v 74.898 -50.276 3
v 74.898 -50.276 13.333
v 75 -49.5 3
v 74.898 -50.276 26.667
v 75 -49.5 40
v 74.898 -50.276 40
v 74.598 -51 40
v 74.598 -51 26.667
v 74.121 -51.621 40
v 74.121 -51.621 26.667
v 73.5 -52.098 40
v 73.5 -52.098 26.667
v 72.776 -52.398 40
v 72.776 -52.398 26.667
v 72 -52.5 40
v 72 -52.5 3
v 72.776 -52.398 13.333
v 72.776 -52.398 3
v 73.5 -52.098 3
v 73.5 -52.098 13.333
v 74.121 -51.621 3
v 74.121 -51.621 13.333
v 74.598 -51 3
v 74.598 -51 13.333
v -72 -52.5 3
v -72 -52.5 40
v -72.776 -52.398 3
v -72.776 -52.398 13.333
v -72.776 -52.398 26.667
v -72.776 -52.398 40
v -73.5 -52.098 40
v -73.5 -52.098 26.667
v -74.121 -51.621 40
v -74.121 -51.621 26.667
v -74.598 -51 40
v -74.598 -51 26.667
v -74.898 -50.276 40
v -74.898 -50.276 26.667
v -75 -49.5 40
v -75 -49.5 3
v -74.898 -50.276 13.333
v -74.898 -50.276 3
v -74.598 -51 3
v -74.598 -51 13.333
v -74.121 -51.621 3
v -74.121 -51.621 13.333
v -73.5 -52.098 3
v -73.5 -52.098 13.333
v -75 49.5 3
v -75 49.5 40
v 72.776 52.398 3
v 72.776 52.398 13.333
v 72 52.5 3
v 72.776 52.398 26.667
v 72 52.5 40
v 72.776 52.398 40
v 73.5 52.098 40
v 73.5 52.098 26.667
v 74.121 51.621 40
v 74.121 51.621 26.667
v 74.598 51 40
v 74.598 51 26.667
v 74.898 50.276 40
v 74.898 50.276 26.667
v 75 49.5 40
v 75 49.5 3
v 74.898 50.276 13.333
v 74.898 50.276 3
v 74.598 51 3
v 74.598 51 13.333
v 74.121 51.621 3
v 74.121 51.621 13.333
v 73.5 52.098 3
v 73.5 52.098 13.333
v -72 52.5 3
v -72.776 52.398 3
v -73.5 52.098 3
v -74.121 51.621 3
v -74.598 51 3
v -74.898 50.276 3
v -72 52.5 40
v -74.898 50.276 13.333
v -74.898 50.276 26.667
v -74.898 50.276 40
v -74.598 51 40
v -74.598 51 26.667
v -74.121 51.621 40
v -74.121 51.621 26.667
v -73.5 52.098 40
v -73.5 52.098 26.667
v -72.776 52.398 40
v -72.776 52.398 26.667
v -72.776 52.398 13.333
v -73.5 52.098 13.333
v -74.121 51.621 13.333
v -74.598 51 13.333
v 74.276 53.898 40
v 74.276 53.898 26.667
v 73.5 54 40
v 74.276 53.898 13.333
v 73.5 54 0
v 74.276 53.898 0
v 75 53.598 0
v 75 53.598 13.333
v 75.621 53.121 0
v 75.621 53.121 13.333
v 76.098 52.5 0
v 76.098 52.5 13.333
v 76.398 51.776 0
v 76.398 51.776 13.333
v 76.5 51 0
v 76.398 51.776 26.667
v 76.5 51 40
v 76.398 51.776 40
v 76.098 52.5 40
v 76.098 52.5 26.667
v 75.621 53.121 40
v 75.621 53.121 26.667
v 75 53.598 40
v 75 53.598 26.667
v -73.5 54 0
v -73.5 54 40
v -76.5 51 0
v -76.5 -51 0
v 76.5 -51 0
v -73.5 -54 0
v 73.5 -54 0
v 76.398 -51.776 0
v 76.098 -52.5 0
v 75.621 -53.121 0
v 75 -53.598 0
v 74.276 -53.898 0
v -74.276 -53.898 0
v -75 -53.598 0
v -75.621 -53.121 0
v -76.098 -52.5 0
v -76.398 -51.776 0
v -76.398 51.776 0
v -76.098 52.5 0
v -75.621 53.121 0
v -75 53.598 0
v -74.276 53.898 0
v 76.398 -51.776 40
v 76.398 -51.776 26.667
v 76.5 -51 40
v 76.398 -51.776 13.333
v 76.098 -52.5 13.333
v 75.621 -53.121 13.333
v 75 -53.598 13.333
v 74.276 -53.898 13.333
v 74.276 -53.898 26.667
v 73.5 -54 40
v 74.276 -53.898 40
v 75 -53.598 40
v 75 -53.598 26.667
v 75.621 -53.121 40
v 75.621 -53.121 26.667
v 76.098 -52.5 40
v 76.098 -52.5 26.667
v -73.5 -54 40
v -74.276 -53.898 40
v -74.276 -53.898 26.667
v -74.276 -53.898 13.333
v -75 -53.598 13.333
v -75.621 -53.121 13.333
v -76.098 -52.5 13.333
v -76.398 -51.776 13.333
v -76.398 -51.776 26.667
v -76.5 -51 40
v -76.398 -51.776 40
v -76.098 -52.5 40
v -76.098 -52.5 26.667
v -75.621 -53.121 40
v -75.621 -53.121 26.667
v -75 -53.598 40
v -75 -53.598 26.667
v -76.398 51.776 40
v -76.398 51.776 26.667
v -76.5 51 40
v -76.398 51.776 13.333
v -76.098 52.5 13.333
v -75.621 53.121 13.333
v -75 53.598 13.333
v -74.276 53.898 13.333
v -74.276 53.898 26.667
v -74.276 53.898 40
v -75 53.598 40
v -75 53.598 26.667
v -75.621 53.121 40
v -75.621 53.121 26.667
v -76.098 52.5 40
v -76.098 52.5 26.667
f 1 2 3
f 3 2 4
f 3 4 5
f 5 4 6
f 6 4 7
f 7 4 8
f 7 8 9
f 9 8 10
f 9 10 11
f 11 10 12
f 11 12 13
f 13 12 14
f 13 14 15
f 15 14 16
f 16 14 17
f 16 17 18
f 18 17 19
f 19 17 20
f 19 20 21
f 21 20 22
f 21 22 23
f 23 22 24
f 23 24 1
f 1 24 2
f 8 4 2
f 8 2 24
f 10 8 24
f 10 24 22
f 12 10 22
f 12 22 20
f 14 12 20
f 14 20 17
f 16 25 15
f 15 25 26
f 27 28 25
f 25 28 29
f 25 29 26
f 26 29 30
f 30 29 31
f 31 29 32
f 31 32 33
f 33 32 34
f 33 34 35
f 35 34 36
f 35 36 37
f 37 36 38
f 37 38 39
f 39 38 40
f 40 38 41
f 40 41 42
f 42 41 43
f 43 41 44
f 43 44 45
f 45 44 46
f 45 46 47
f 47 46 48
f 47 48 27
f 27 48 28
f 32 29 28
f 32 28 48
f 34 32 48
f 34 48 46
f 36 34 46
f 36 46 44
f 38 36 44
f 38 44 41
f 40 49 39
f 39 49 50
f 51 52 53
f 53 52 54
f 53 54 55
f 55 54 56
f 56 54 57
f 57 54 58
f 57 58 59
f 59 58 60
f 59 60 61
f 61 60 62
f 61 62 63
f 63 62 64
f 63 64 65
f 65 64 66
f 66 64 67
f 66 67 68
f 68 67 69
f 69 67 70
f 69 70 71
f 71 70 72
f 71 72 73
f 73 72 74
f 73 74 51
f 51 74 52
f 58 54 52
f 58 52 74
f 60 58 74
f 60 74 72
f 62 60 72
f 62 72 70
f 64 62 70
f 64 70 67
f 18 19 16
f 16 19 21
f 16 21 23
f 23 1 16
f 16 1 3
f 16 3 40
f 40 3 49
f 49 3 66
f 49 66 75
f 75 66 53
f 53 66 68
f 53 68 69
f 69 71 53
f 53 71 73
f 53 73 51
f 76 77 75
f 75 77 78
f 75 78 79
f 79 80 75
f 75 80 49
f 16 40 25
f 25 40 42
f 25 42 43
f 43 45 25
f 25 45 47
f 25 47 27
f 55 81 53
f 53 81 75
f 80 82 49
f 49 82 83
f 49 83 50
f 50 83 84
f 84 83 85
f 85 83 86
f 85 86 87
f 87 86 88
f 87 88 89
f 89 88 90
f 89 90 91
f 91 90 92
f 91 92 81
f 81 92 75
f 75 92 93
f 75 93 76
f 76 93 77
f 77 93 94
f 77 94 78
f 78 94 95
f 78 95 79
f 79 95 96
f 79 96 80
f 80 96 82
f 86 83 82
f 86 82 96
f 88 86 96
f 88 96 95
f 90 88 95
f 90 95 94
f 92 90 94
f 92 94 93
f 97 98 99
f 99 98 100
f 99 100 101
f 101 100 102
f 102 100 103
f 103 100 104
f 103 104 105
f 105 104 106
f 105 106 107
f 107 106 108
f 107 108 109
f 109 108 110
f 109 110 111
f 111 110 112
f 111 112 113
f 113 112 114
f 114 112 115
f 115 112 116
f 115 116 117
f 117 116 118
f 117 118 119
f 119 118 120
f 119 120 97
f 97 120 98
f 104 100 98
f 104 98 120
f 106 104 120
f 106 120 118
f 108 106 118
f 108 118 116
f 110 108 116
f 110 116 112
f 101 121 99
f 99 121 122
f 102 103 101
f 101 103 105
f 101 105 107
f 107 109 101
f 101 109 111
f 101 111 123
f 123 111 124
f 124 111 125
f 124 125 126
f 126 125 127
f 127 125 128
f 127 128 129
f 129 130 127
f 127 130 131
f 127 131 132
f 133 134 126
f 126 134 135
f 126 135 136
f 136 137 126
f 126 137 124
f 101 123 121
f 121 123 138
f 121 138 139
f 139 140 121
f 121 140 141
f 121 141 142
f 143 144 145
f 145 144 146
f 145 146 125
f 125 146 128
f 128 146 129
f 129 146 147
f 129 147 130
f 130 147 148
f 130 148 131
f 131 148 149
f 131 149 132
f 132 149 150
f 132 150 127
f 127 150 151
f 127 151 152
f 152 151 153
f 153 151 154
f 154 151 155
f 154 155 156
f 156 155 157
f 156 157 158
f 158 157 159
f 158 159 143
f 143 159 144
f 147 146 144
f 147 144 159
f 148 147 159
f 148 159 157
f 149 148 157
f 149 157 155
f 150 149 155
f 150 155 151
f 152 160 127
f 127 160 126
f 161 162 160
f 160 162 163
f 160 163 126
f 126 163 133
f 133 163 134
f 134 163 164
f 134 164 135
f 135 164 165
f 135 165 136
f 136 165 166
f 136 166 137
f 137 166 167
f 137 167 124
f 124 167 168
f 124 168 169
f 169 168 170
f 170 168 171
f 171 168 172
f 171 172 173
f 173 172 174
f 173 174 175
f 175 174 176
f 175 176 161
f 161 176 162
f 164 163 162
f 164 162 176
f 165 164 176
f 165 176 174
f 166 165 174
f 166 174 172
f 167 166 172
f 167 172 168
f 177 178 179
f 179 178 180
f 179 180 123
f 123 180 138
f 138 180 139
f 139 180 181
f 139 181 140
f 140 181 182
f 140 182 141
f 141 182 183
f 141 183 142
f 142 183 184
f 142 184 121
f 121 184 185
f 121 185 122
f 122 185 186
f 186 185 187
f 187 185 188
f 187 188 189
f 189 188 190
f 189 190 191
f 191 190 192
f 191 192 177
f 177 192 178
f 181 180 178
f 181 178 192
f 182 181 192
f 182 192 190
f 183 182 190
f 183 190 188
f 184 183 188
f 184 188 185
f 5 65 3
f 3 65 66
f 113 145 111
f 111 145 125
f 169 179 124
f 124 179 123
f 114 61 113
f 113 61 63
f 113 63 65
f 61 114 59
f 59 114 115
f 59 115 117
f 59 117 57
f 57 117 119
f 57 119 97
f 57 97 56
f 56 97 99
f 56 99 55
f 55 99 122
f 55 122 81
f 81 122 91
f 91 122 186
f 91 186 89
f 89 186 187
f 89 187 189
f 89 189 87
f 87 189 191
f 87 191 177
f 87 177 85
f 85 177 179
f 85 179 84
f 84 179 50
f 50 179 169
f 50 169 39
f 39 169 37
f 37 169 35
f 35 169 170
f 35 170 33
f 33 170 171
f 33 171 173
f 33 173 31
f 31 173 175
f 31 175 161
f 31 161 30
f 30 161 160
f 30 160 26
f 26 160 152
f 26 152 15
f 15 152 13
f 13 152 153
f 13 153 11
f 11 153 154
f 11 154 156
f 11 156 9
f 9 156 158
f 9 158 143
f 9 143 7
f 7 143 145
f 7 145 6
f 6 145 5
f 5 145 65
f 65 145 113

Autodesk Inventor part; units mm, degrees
ref_plane "YZ Plane" through (0, 0, 0) normal (1, 0, 0) x (0, 1, 0)
ref_plane "XZ Plane" through (0, 0, 0) normal (0, 1, 0) x (-1, 0, 0)
ref_plane "XY Plane" through (0, 0, 0) normal (0, 0, 1) x (1, 0, 0)
sketch "スケッチ1" plane through (0, 0, 0) normal (0, 0, 1) x (1, 0, 0)
  line L0 (75, -52.5) -> (-75, -52.5)
  line L1 (-75, -52.5) -> (-75, 52.5)
  line L2 (-75, 52.5) -> (75, 52.5)
  line L3 (75, 52.5) -> (75, -52.5)
  line L4 (75, -52.5) -> (-75, 52.5) construction
  line L5 (-75, -52.5) -> (75, 52.5) construction
  line L6 (76.5, -54) -> (-76.5, -54)
  line L7 (-76.5, -54) -> (-76.5, 54)
  line L8 (-76.5, 54) -> (76.5, 54)
  line L9 (76.5, 54) -> (76.5, -54)
  line L10 (76.5, -54) -> (-76.5, 54) construction
  line L11 (-76.5, -54) -> (76.5, 54) construction
  point P0 (0, 0)
  dimension "d0" = 150
  dimension "d1" = 105
  dimension "d4" = 153
  dimension "d5" = 108
extrude "押し出し1" add sketch "スケッチ1" along normal blind 40
extrude "押し出し2" add sketch "スケッチ1" along normal blind 3 contours L0 L1 L2 L3
fillet "フィレット3" radius 3 4 edges at (-76.5, 54, 20) (-76.5, -54, 20) (76.5, -54, 20) (76.5, 54, 20)
fillet "フィレット3" radius 3 4 edges at (-75, 52.5, 21.5) (75, 52.5, 21.5) (-75, -52.5, 21.5) (75, -52.5, 21.5)
properties part number "water_bowl"
